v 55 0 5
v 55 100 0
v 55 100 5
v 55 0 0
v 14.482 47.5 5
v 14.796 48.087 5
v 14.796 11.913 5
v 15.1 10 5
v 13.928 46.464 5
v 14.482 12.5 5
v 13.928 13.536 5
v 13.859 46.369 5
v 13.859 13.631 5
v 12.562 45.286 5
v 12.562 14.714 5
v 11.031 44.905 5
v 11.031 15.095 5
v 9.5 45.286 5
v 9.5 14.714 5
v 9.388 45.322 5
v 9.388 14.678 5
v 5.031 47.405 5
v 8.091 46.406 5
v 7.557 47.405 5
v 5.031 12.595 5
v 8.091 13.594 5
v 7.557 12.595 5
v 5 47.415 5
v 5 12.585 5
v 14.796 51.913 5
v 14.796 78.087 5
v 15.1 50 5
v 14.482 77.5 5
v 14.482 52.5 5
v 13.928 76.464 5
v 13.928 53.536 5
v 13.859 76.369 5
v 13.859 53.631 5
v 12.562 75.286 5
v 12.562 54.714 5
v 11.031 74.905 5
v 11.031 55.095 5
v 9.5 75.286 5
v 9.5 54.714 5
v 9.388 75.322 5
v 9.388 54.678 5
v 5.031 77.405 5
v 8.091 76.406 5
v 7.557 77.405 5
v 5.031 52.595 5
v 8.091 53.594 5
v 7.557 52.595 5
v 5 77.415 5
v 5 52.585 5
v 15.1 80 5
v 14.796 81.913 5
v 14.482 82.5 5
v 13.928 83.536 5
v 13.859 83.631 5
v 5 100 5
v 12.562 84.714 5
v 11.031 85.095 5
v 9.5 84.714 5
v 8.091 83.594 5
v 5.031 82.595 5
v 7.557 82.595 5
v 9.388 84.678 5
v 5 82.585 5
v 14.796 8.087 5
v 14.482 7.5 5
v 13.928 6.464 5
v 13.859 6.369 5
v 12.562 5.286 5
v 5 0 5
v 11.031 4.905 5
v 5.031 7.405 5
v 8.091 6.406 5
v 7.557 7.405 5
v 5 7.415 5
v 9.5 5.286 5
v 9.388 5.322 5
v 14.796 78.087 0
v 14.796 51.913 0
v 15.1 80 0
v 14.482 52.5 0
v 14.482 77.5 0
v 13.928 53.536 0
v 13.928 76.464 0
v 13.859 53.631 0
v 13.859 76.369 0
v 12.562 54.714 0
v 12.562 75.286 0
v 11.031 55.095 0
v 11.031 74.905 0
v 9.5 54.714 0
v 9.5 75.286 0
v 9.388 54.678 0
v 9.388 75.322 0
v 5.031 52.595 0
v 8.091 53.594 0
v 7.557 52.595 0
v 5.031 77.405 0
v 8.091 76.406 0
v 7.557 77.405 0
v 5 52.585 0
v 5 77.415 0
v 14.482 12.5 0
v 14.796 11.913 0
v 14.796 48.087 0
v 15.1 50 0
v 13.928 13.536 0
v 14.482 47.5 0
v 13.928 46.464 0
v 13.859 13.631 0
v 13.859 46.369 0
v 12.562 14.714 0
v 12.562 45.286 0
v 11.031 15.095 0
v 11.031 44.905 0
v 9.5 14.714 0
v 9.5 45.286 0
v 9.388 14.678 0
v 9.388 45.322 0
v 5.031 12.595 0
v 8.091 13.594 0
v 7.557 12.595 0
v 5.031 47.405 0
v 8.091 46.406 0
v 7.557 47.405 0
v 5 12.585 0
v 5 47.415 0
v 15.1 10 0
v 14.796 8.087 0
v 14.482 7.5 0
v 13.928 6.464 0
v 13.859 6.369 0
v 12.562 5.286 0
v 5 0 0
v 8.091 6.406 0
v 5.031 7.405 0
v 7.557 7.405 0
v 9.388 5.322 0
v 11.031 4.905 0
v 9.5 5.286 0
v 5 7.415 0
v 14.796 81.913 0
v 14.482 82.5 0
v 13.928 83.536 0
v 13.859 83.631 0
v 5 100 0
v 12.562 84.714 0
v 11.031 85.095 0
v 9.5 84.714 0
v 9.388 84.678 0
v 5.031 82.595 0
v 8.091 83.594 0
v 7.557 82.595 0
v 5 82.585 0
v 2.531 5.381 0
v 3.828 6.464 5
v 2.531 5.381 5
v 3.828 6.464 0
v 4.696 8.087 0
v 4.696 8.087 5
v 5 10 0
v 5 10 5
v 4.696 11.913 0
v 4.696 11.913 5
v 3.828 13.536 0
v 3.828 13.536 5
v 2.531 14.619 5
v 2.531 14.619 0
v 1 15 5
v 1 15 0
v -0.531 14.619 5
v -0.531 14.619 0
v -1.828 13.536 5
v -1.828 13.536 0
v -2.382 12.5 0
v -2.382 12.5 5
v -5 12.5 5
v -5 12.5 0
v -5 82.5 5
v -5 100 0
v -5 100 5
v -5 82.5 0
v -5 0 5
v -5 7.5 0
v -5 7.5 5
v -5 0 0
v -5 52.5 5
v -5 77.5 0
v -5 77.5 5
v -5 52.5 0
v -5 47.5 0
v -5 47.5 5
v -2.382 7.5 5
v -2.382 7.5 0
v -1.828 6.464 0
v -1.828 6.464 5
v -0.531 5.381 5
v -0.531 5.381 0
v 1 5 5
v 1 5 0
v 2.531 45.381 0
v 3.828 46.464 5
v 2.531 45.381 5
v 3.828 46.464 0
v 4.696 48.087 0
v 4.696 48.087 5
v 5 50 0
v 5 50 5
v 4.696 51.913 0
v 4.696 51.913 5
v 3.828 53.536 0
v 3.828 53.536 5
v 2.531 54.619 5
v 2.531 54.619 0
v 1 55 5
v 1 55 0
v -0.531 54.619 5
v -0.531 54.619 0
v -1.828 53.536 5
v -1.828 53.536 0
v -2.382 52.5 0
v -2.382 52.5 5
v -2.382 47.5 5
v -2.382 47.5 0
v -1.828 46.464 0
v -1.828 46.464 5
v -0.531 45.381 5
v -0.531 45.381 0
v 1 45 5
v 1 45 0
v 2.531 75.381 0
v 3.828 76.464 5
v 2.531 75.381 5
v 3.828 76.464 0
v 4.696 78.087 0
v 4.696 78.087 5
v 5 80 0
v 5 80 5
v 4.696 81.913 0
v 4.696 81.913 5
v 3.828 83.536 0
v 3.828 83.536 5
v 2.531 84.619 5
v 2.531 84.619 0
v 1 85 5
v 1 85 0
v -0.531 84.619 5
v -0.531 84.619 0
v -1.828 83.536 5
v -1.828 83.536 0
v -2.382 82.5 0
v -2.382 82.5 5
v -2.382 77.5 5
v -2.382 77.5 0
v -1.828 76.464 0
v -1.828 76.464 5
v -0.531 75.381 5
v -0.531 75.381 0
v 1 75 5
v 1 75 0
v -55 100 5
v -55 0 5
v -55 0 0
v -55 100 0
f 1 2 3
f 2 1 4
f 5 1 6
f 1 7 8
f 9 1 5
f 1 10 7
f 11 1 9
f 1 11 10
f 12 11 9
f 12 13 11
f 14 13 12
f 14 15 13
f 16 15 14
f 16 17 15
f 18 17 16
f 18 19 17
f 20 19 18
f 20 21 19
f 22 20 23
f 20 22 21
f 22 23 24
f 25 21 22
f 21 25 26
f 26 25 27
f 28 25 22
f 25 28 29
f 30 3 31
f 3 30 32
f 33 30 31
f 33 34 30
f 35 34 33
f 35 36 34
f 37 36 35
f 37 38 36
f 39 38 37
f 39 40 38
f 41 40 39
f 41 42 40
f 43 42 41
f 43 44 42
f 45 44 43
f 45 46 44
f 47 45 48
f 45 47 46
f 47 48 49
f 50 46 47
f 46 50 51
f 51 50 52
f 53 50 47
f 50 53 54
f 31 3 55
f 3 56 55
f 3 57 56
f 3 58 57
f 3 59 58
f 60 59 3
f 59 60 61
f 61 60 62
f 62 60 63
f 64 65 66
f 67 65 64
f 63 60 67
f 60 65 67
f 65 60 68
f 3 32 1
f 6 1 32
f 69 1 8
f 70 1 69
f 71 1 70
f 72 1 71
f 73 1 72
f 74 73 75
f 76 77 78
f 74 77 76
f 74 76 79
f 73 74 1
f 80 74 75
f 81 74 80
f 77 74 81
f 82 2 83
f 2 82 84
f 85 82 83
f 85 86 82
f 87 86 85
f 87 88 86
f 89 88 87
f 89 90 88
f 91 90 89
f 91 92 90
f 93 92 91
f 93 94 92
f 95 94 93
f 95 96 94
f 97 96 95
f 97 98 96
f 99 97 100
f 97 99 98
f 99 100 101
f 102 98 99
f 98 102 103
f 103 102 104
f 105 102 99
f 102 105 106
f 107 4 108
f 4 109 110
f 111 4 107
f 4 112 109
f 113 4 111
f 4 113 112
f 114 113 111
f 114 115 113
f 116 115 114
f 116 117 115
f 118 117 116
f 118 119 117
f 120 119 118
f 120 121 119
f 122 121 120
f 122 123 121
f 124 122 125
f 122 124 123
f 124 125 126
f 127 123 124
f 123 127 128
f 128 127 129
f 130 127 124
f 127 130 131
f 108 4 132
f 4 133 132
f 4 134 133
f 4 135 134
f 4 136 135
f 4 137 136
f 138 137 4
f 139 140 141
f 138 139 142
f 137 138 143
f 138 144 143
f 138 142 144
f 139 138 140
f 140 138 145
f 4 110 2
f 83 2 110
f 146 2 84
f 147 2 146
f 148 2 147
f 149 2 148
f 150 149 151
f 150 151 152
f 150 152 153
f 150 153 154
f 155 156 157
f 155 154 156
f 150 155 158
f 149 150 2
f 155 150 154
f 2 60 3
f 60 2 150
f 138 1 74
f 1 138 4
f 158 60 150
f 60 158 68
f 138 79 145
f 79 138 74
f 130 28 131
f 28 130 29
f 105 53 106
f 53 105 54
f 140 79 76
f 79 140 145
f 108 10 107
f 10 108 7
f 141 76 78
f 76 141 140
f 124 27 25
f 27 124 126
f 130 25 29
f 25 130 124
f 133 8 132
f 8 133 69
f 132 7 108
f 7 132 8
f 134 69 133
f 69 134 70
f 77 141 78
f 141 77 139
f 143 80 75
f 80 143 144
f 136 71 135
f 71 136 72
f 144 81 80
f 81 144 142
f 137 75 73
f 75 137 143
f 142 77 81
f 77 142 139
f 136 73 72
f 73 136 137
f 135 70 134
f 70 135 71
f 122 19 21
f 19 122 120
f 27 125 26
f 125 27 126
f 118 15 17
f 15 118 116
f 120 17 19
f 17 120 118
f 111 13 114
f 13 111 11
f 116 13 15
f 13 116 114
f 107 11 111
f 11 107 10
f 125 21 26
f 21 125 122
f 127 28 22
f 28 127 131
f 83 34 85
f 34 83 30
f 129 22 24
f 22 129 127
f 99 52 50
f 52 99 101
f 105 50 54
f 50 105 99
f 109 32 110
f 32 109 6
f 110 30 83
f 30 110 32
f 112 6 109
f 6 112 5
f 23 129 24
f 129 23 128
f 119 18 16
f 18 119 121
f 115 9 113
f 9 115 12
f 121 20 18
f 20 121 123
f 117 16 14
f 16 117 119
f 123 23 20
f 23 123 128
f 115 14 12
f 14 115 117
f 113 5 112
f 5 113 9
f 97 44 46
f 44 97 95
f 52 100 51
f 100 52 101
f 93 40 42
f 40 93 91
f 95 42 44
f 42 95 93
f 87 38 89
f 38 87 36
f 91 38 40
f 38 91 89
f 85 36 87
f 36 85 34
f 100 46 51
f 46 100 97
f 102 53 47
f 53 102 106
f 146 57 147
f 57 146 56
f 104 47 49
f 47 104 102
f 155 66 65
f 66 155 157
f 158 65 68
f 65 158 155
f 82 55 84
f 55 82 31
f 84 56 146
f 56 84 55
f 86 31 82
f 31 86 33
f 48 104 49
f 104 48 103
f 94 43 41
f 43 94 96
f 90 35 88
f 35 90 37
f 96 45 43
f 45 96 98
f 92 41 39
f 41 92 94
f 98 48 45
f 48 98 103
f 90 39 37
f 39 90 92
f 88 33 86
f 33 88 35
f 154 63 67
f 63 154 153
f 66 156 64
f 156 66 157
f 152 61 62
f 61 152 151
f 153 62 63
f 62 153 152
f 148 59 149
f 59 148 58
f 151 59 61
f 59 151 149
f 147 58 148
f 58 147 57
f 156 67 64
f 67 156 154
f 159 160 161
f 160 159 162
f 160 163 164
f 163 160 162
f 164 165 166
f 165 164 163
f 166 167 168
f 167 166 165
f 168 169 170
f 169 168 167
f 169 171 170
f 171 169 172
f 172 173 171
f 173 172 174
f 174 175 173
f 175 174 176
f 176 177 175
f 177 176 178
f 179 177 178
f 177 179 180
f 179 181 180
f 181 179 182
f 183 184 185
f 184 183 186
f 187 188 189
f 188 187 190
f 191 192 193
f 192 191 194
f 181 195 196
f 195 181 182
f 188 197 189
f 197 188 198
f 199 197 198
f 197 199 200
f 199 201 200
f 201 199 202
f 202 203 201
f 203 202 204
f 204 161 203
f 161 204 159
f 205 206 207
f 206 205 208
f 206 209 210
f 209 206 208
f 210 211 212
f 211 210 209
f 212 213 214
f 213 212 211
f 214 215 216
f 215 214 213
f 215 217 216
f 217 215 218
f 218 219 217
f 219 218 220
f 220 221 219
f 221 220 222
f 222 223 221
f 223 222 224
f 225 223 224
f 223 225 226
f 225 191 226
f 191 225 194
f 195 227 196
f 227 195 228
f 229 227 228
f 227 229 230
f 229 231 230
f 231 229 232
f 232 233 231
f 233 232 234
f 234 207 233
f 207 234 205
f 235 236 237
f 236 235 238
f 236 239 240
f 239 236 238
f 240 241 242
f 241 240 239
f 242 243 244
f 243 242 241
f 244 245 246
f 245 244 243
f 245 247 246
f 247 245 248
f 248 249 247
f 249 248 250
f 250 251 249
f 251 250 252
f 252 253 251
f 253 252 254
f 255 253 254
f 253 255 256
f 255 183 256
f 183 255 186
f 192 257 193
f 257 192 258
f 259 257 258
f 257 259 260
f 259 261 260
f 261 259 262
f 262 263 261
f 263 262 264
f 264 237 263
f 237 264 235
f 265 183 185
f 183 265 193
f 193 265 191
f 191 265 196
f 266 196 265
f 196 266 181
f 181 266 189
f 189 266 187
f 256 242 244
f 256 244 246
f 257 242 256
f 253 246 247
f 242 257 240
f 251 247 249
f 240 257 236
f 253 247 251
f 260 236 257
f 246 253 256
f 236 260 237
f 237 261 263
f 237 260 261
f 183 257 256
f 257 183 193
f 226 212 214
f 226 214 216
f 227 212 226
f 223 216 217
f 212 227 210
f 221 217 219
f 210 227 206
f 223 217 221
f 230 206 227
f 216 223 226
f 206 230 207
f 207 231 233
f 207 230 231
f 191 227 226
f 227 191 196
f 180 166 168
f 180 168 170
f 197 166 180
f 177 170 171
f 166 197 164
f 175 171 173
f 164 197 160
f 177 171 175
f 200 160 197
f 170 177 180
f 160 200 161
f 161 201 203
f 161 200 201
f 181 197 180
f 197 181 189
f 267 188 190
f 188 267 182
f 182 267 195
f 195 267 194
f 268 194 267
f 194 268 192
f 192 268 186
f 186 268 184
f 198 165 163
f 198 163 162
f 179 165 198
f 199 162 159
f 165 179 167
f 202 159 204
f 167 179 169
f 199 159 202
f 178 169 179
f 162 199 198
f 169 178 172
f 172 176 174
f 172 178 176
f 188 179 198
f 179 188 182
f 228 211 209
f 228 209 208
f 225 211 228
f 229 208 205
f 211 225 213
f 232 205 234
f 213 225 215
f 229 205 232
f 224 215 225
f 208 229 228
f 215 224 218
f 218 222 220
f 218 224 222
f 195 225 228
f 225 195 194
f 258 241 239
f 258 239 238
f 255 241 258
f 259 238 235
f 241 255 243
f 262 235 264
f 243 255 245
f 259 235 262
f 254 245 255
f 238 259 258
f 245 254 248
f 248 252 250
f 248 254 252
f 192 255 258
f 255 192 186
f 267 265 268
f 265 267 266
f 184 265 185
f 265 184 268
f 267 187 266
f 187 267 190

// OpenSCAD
// file: josl/cuts/leftright.scad
module LeftRight( apart, minX, maxX, minY, maxY, minZ, maxZ, y, play ) {
    yy = len(y) == 0 ? [ minY : ( maxY - minY ) / 10 : maxY ] : y;

    translate( [ apart/2, 0, 0 ] )
    Right( minX=minX, maxX=maxX, minY=minY, maxY=maxY, minZ=minZ, maxZ=maxZ, y=yy, play=play ) {
        children(0);
        children(1);
    };

    translate( [ -apart/2, 0, 0 ] )
    Left( minX=minX, maxX=maxX, minY=minY, maxY=maxY, minZ=minZ, maxZ=maxZ, y=yy, play=play ) {
        children(0);
        children(1);
    };
};

module Right( minX, maxX, minY, maxY, minZ, maxZ, y, play ) {
    difference() {
        intersection() {
            children(0);
            translate( [ 0, minY, minZ ] ) {
                cube( [ maxX, maxY - minY, maxZ - minZ ] );
            }
        };

        for( yy=y ) {
            translate( [ 0, yy, minZ ] ) {
                minkowski() {
                    linear_extrude( height = maxZ - minZ ) {
                        children(1);
                    };
                    sphere( r=play );
                }
            }
        }
    }
}

module Left( minX, maxX, minY, maxY, minZ, maxZ, y, play ) {
    difference() {
        children(0);
        difference() {
            translate( [ 0, minY, minZ ] ) {
                cube( [ maxX, maxY - minY, maxZ - minZ ] );
            };

            for( yy=y ) {
                translate( [ 0, yy, minZ ] ) {
                    linear_extrude( height = maxZ - minZ ) {
                        children(1);
                    }
                }
            }
        }
    }
}
// file: josl/cuts/zigzag.scad
//
// Cuts a zigzag line (a bunch of equilateral triangles in a line).
//
// parameters:
// zig: the height of the triangle (x direction)
// zag: the length of the base of the triangle (y direction)
//

use <leftright.scad>

module ZigZag( zig=10, zag=10, apart=10, minX=-200, maxX=200, minY=-200, maxY=200, minZ=-200, maxZ=200, play=.1, y=[] ) {
    LeftRight( apart, minX, maxX, minY, maxY, minZ, maxZ, y=y, play=play ) {
        children(0);

        polygon( points=[
                [ 0, -zag/2 ],
                [ zig, 0 ],
                [ 0, zag/2 ],
                [ 0, 0 ]
        ] );
    };
};
// file: josl/cuts/puzzle.scad
//
// Cuts into a puzzle-piece-like protrusion (and cavity).
//
// parameters:
// height: the height of the protrusion (x direction)
// width: the maximum width of the protrusion (y direction)
// base: the width of the stem of the protrusion (y direction)
// stem: the height of the stem of the protrusion to the center of the ellipsis (x direction)
//

use <leftright.scad>

module Puzzle( height=10, width=10, base=5, stem=6, apart=10, minX=-200, maxX=200, minY=-200, maxY=200, minZ=-200, maxZ=200, play=.1, y=[] ) {

    LeftRight( apart, minX, maxX, minY, maxY, minZ, maxZ, y=y, play=play ) {
        children(0);

        union() {
            translate( [ 0, -base/2, 0 ] )
            square( [ stem, base ] );

            translate( [ stem, 0, 0 ] )
            scale( [ ( height - stem) * 2 / width, 1, 0 ] ) {
                circle( d=width ); // looks clumsy but renders better
            }
        }
    };
};
// file: josl/cuts/comb.scad
use <leftright.scad>

//
// The following does not work:
// according to http://forum.openscad.org/Operator-problem-tp25984p25989.html
// "this is currently impossible": only one child can be passed up
//
// module Combs2( apart=5, step=10, insert=20, height=5, play=0.5, max=100 ) {
//     LeftRight( step=step, insert=insert, height=height, play=play, max=max ) {
//         cube( [ insert+play, step+2*play, height ] );
//         cube( [ insert-play, step-2*play, height ] );
//         children();
//     };
// };
// 
// module LeftRight( apart=5, step=10, insert=20, height=5, play=0.5, max=100 ) {
//     translate( [ apart, 0, 0 ] )
//     Right( step=step, insert=insert, height=height, play=play, max=max )
//     children();
// 
//     translate( [ -apart, 0, 0 ] )
//     Left( step=step, insert=insert, height=height, play=play, max=max )
//     children();
// };

module Combs( apart=5, step=10, insert=20, height=5, play=0.5, max=100 ) {
    translate( [ apart, 0, 0 ] )
    Right( step=step, insert=insert, height=height, play=play, max=max ) {
        cube( [ insert+play, step+2*play, height ] );
        cube( [ insert-play, step-2*play, height ] );
        children();
    };

    translate( [ -apart, 0, 0 ] )
    Left( step=step, insert=insert, height=height, play=play, max=max ) {
        cube( [ insert+play, step+2*play, height ] );
        cube( [ insert-play, step-2*play, height ] );
        children();
    }
};
// main file
//
// Cut a simply cube.
//
// (C) 2019 Johannes Ernst.
// License: see package.
//

use <josl/cuts/comb.scad>
use <josl/cuts/puzzle.scad>
use <josl/cuts/zigzag.scad>

module MyPart() {
    translate( [ -50, 0, 0 ] ) {
        cube( [ 100, 100, 5 ] );
    }
}

// Uncomment this for a comb cut
// Cut at the default locations
// Comb() {
//     MyPart();
// }

// Uncomment this for a comb cut
// Cut at the specified locations
// Comb( y=[ 20, 40, 80 ] ) {
//     MyPart();
// }

// Uncomment this for a zig-zag cut
// ZigZag( y = [ 10, 30 ] ) {
//     MyPart();
// }

// Uncomment this for a puzzle cut
Puzzle( y = [ 10, 50, 80 ] ) {
    MyPart();
}
